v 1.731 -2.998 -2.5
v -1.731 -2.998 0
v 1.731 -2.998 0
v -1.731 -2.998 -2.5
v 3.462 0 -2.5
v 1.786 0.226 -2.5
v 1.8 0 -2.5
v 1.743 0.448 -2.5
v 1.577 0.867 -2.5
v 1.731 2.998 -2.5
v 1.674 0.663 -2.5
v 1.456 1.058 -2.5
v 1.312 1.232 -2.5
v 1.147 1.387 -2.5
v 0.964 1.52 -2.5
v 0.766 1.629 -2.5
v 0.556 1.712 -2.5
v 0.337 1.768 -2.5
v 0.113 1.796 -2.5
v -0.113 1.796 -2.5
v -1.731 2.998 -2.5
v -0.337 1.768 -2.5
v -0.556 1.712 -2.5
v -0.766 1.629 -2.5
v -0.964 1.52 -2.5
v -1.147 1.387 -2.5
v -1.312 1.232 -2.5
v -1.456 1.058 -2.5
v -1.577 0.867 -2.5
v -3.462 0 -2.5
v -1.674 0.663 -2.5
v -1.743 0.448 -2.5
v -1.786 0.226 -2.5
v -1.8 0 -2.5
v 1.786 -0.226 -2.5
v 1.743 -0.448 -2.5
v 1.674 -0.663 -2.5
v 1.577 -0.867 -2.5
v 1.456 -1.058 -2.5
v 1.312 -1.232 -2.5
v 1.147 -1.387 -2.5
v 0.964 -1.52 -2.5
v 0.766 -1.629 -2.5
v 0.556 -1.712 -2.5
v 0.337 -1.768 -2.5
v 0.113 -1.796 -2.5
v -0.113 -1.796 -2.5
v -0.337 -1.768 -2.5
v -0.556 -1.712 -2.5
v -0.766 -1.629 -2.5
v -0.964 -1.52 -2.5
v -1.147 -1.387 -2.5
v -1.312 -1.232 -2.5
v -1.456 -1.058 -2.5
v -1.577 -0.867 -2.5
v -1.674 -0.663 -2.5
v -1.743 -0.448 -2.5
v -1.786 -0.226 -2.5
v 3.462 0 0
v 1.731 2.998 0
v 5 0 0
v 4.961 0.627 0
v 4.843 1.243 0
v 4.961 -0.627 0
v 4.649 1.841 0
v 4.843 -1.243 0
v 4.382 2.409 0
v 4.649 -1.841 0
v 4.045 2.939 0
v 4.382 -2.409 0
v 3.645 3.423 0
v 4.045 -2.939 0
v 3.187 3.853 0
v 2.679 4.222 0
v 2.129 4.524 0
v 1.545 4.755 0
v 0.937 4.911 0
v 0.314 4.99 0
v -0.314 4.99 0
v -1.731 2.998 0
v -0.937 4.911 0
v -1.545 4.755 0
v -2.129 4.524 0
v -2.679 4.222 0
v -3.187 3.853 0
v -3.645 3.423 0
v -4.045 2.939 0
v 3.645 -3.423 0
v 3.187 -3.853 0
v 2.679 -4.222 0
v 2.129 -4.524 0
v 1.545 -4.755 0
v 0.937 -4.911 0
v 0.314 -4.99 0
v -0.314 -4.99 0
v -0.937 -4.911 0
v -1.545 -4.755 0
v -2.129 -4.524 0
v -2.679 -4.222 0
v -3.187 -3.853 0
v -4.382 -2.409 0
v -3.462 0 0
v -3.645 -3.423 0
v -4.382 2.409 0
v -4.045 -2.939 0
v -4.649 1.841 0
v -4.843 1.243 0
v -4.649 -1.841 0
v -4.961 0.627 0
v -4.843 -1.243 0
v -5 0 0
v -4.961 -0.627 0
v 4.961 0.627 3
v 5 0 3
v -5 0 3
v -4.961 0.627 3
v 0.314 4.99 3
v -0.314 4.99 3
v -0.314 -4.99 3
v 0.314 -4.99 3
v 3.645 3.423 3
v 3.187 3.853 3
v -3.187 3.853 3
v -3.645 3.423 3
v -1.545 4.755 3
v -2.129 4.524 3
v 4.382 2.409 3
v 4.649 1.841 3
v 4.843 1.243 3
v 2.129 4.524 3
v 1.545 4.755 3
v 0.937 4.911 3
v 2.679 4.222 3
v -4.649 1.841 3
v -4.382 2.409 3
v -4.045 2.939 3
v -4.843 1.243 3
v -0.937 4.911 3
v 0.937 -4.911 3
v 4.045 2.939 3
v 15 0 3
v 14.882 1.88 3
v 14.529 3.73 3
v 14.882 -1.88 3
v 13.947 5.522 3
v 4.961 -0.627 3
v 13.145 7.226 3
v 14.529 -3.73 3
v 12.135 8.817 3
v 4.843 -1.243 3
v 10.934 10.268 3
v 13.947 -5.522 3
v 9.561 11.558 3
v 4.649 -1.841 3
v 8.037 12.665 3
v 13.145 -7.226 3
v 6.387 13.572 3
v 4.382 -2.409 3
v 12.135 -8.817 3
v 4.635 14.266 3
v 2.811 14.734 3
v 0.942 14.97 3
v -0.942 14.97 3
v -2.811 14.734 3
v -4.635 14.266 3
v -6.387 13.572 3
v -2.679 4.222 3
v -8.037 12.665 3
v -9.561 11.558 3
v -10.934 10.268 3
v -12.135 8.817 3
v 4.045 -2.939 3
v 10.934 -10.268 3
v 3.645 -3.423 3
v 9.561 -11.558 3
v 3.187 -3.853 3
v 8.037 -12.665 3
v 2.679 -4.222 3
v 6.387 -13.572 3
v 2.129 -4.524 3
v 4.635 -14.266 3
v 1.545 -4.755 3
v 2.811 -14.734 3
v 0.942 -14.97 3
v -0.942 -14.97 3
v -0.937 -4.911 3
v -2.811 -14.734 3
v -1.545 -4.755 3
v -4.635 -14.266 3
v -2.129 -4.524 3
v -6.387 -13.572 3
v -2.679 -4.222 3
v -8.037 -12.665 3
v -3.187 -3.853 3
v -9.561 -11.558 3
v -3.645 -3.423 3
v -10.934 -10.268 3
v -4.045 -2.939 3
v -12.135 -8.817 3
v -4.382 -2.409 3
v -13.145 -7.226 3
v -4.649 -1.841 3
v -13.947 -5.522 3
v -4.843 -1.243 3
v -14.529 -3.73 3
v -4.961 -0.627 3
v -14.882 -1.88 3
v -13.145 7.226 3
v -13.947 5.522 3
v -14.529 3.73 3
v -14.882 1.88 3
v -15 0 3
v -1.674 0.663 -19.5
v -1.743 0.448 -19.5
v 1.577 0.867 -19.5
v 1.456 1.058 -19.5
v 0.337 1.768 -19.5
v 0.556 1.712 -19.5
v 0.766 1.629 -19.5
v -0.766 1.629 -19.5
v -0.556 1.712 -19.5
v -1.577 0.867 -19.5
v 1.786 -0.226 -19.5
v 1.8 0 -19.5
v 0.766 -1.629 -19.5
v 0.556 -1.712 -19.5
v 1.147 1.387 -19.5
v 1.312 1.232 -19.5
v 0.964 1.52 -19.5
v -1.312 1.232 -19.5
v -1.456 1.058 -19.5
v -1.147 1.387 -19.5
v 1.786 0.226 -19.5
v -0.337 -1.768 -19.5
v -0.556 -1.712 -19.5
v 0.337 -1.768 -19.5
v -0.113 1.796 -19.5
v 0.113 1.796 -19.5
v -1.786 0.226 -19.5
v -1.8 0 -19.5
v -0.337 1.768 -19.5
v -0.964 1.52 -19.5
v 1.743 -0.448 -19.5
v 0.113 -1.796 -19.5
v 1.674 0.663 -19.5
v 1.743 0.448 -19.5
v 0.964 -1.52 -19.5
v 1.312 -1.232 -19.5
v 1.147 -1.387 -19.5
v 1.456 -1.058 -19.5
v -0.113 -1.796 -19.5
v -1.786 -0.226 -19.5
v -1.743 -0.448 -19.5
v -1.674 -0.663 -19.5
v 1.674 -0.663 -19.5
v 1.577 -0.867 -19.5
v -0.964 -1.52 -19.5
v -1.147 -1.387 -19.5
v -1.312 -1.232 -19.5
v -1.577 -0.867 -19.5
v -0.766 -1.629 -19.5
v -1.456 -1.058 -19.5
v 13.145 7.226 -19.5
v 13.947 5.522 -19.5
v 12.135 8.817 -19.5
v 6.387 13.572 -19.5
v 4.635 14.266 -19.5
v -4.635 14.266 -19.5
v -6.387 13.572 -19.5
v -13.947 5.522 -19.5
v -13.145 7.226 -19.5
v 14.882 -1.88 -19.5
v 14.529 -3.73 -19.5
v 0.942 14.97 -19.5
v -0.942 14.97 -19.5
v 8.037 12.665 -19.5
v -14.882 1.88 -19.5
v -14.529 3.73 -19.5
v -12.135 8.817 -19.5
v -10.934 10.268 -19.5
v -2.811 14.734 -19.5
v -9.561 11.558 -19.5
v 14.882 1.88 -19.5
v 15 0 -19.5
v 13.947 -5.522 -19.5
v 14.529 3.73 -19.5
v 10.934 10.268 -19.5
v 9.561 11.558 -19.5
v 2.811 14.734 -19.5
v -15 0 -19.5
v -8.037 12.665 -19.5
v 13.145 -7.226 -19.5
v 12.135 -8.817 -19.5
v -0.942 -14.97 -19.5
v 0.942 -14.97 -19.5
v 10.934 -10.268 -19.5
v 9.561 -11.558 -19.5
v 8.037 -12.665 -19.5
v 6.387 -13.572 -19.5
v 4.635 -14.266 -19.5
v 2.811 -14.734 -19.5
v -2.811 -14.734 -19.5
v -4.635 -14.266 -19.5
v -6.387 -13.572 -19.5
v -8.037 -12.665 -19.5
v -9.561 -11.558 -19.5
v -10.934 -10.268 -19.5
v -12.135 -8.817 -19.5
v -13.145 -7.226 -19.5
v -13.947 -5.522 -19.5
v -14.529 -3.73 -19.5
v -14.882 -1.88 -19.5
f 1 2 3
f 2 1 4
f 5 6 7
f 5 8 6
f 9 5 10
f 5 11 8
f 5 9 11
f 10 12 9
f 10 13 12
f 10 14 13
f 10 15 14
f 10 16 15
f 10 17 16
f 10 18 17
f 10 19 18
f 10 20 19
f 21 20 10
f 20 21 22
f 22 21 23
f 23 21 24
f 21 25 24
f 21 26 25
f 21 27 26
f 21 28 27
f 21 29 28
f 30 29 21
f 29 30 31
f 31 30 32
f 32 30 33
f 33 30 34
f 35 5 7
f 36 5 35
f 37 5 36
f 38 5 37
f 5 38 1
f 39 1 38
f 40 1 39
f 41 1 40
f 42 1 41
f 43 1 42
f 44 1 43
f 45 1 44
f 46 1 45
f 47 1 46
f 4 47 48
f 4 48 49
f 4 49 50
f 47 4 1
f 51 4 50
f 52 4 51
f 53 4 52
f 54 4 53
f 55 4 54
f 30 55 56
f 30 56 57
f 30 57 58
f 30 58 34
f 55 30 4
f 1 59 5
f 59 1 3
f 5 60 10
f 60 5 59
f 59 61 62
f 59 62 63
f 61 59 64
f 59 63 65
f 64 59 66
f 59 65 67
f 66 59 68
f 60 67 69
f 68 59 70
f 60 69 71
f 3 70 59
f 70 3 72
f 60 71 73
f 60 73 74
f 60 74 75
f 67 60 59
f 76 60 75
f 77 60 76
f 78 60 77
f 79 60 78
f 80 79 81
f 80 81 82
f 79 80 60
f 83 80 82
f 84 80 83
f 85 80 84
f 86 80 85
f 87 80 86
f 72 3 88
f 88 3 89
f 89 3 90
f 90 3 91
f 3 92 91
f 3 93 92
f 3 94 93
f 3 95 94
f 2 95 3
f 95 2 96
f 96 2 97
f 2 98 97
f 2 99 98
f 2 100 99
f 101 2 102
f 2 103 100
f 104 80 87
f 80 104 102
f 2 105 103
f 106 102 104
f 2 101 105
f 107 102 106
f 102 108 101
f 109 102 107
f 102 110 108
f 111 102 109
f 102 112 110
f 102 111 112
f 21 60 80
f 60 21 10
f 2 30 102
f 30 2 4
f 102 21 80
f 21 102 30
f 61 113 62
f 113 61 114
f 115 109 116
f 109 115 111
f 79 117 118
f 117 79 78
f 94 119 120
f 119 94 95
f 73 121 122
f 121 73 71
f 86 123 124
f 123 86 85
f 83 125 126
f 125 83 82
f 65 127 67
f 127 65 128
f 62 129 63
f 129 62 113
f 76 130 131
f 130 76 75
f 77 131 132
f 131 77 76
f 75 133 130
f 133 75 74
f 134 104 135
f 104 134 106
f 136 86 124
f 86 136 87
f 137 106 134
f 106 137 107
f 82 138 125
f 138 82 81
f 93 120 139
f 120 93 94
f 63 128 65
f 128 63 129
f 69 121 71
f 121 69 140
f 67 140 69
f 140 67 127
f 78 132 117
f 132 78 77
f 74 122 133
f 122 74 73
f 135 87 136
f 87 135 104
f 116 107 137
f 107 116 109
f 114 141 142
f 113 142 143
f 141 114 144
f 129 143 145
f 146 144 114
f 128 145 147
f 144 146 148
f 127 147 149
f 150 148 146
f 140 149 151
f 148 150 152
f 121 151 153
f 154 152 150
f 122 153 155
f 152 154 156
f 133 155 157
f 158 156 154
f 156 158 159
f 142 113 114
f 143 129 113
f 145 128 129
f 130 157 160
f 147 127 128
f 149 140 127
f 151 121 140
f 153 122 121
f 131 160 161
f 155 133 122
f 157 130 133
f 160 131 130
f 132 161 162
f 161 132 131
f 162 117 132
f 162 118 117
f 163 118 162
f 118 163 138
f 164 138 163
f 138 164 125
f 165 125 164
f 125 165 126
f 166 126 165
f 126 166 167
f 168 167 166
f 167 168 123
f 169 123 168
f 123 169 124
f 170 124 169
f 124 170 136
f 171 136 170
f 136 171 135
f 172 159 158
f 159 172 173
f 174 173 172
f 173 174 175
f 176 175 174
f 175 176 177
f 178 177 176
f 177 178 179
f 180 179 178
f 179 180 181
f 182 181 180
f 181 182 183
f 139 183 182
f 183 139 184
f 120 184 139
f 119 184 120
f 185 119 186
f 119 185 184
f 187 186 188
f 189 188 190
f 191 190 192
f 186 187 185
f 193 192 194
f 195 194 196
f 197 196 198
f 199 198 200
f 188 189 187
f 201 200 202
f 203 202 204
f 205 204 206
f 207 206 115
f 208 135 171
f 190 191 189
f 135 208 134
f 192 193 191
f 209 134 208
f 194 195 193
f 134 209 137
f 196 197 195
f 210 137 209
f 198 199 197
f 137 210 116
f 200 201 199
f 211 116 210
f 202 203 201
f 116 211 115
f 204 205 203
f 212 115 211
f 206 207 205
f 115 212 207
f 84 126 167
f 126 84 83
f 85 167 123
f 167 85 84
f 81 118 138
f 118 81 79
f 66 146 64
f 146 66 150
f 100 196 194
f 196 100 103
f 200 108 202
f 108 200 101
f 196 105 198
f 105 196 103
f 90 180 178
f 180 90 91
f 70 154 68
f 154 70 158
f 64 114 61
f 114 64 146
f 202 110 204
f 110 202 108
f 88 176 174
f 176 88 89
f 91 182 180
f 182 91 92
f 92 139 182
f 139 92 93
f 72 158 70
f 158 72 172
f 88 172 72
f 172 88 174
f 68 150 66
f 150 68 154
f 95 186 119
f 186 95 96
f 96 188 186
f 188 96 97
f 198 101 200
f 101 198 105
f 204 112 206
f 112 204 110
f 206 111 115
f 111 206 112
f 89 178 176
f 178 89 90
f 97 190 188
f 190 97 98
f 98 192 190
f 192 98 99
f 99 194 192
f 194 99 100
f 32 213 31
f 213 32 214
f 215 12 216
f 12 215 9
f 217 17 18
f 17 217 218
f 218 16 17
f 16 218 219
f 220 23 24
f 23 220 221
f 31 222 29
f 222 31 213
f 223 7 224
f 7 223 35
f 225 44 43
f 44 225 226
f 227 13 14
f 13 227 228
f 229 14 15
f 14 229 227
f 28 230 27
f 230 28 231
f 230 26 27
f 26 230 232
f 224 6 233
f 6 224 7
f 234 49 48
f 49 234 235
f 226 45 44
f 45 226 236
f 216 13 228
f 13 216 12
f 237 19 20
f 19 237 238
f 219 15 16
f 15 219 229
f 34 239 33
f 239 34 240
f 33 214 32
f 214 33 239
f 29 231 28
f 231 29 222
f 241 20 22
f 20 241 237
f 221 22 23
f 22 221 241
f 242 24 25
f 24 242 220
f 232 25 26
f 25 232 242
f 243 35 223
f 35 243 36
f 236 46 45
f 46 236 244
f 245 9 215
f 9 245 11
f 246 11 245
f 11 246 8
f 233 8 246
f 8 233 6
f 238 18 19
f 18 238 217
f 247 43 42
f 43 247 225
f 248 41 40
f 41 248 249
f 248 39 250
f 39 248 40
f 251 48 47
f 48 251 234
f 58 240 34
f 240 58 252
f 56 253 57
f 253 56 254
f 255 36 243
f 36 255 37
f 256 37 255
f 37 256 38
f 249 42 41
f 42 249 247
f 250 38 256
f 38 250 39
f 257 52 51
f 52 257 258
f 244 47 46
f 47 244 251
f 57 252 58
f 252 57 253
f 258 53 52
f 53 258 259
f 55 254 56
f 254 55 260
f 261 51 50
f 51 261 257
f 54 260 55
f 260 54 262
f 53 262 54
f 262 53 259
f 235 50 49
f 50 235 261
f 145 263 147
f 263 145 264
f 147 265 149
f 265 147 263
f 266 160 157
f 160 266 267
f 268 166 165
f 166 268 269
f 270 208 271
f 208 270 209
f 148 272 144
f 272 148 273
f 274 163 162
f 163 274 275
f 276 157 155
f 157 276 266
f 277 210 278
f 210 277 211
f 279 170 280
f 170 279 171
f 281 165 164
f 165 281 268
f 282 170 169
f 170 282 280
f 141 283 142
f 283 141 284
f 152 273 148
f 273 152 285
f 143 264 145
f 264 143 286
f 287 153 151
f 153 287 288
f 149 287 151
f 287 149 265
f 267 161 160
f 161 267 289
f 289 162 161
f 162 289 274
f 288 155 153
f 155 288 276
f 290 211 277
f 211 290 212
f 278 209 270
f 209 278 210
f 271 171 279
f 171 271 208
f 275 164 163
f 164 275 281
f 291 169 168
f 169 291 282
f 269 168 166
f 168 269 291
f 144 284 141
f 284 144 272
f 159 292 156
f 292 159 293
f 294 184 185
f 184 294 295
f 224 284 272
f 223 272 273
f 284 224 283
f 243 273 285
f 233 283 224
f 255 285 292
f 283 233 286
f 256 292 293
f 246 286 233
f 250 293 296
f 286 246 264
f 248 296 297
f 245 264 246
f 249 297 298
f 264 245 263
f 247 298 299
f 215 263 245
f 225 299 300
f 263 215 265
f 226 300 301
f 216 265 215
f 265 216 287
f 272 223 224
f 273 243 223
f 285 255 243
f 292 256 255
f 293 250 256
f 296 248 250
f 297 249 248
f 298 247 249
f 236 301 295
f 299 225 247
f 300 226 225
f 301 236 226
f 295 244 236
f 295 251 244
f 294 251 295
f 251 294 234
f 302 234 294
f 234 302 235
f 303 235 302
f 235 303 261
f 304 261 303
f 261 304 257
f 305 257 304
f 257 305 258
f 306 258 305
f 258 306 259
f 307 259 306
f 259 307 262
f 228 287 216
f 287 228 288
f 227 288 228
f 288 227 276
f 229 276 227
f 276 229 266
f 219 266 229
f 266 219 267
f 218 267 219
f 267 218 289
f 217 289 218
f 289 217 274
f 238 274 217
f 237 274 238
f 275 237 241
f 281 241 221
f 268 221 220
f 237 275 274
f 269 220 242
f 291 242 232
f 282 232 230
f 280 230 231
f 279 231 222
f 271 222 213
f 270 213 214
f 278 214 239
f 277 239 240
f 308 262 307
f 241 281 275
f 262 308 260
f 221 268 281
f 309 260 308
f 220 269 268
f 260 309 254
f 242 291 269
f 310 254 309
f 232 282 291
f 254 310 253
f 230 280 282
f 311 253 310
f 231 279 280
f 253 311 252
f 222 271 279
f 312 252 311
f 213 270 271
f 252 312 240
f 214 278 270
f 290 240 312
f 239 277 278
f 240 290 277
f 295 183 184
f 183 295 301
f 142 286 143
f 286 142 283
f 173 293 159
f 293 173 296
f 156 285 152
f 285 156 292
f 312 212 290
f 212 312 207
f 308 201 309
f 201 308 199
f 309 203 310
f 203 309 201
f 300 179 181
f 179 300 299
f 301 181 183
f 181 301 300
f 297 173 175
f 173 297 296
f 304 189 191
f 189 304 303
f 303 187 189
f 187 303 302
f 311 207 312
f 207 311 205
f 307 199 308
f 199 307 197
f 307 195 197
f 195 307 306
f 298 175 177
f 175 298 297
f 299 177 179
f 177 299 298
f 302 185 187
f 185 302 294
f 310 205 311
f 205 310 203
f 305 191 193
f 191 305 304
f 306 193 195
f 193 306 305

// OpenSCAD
$fn = 50;


difference() {
	union() {
		translate(v = [0, 0, -19.5000000000]) {
			cylinder(h = 22.5000000000, r = 15.0000000000);
		}
	}
	union() {
		translate(v = [0, 0, 0]) {
			rotate(a = [0, 0, 0]) {
				difference() {
					union() {
						translate(v = [0, 0, -2.5000000000]) {
							linear_extrude(height = 2.5000000000) {
								polygon(points = [[3.4620000000, 0.0000000000], [1.7310000000, 2.9981799479], [-1.7310000000, 2.9981799479], [-3.4620000000, 0.0000000000], [-1.7310000000, -2.9981799479], [1.7310000000, -2.9981799479]]);
							}
						}
					}
					union();
				}
			}
		}
		#cylinder(h = 3, r = 5.0000000000);
		#translate(v = [0, 0, -100.0000000000]) {
			cylinder(h = 200, r = 1.8000000000);
		}
	}
}
